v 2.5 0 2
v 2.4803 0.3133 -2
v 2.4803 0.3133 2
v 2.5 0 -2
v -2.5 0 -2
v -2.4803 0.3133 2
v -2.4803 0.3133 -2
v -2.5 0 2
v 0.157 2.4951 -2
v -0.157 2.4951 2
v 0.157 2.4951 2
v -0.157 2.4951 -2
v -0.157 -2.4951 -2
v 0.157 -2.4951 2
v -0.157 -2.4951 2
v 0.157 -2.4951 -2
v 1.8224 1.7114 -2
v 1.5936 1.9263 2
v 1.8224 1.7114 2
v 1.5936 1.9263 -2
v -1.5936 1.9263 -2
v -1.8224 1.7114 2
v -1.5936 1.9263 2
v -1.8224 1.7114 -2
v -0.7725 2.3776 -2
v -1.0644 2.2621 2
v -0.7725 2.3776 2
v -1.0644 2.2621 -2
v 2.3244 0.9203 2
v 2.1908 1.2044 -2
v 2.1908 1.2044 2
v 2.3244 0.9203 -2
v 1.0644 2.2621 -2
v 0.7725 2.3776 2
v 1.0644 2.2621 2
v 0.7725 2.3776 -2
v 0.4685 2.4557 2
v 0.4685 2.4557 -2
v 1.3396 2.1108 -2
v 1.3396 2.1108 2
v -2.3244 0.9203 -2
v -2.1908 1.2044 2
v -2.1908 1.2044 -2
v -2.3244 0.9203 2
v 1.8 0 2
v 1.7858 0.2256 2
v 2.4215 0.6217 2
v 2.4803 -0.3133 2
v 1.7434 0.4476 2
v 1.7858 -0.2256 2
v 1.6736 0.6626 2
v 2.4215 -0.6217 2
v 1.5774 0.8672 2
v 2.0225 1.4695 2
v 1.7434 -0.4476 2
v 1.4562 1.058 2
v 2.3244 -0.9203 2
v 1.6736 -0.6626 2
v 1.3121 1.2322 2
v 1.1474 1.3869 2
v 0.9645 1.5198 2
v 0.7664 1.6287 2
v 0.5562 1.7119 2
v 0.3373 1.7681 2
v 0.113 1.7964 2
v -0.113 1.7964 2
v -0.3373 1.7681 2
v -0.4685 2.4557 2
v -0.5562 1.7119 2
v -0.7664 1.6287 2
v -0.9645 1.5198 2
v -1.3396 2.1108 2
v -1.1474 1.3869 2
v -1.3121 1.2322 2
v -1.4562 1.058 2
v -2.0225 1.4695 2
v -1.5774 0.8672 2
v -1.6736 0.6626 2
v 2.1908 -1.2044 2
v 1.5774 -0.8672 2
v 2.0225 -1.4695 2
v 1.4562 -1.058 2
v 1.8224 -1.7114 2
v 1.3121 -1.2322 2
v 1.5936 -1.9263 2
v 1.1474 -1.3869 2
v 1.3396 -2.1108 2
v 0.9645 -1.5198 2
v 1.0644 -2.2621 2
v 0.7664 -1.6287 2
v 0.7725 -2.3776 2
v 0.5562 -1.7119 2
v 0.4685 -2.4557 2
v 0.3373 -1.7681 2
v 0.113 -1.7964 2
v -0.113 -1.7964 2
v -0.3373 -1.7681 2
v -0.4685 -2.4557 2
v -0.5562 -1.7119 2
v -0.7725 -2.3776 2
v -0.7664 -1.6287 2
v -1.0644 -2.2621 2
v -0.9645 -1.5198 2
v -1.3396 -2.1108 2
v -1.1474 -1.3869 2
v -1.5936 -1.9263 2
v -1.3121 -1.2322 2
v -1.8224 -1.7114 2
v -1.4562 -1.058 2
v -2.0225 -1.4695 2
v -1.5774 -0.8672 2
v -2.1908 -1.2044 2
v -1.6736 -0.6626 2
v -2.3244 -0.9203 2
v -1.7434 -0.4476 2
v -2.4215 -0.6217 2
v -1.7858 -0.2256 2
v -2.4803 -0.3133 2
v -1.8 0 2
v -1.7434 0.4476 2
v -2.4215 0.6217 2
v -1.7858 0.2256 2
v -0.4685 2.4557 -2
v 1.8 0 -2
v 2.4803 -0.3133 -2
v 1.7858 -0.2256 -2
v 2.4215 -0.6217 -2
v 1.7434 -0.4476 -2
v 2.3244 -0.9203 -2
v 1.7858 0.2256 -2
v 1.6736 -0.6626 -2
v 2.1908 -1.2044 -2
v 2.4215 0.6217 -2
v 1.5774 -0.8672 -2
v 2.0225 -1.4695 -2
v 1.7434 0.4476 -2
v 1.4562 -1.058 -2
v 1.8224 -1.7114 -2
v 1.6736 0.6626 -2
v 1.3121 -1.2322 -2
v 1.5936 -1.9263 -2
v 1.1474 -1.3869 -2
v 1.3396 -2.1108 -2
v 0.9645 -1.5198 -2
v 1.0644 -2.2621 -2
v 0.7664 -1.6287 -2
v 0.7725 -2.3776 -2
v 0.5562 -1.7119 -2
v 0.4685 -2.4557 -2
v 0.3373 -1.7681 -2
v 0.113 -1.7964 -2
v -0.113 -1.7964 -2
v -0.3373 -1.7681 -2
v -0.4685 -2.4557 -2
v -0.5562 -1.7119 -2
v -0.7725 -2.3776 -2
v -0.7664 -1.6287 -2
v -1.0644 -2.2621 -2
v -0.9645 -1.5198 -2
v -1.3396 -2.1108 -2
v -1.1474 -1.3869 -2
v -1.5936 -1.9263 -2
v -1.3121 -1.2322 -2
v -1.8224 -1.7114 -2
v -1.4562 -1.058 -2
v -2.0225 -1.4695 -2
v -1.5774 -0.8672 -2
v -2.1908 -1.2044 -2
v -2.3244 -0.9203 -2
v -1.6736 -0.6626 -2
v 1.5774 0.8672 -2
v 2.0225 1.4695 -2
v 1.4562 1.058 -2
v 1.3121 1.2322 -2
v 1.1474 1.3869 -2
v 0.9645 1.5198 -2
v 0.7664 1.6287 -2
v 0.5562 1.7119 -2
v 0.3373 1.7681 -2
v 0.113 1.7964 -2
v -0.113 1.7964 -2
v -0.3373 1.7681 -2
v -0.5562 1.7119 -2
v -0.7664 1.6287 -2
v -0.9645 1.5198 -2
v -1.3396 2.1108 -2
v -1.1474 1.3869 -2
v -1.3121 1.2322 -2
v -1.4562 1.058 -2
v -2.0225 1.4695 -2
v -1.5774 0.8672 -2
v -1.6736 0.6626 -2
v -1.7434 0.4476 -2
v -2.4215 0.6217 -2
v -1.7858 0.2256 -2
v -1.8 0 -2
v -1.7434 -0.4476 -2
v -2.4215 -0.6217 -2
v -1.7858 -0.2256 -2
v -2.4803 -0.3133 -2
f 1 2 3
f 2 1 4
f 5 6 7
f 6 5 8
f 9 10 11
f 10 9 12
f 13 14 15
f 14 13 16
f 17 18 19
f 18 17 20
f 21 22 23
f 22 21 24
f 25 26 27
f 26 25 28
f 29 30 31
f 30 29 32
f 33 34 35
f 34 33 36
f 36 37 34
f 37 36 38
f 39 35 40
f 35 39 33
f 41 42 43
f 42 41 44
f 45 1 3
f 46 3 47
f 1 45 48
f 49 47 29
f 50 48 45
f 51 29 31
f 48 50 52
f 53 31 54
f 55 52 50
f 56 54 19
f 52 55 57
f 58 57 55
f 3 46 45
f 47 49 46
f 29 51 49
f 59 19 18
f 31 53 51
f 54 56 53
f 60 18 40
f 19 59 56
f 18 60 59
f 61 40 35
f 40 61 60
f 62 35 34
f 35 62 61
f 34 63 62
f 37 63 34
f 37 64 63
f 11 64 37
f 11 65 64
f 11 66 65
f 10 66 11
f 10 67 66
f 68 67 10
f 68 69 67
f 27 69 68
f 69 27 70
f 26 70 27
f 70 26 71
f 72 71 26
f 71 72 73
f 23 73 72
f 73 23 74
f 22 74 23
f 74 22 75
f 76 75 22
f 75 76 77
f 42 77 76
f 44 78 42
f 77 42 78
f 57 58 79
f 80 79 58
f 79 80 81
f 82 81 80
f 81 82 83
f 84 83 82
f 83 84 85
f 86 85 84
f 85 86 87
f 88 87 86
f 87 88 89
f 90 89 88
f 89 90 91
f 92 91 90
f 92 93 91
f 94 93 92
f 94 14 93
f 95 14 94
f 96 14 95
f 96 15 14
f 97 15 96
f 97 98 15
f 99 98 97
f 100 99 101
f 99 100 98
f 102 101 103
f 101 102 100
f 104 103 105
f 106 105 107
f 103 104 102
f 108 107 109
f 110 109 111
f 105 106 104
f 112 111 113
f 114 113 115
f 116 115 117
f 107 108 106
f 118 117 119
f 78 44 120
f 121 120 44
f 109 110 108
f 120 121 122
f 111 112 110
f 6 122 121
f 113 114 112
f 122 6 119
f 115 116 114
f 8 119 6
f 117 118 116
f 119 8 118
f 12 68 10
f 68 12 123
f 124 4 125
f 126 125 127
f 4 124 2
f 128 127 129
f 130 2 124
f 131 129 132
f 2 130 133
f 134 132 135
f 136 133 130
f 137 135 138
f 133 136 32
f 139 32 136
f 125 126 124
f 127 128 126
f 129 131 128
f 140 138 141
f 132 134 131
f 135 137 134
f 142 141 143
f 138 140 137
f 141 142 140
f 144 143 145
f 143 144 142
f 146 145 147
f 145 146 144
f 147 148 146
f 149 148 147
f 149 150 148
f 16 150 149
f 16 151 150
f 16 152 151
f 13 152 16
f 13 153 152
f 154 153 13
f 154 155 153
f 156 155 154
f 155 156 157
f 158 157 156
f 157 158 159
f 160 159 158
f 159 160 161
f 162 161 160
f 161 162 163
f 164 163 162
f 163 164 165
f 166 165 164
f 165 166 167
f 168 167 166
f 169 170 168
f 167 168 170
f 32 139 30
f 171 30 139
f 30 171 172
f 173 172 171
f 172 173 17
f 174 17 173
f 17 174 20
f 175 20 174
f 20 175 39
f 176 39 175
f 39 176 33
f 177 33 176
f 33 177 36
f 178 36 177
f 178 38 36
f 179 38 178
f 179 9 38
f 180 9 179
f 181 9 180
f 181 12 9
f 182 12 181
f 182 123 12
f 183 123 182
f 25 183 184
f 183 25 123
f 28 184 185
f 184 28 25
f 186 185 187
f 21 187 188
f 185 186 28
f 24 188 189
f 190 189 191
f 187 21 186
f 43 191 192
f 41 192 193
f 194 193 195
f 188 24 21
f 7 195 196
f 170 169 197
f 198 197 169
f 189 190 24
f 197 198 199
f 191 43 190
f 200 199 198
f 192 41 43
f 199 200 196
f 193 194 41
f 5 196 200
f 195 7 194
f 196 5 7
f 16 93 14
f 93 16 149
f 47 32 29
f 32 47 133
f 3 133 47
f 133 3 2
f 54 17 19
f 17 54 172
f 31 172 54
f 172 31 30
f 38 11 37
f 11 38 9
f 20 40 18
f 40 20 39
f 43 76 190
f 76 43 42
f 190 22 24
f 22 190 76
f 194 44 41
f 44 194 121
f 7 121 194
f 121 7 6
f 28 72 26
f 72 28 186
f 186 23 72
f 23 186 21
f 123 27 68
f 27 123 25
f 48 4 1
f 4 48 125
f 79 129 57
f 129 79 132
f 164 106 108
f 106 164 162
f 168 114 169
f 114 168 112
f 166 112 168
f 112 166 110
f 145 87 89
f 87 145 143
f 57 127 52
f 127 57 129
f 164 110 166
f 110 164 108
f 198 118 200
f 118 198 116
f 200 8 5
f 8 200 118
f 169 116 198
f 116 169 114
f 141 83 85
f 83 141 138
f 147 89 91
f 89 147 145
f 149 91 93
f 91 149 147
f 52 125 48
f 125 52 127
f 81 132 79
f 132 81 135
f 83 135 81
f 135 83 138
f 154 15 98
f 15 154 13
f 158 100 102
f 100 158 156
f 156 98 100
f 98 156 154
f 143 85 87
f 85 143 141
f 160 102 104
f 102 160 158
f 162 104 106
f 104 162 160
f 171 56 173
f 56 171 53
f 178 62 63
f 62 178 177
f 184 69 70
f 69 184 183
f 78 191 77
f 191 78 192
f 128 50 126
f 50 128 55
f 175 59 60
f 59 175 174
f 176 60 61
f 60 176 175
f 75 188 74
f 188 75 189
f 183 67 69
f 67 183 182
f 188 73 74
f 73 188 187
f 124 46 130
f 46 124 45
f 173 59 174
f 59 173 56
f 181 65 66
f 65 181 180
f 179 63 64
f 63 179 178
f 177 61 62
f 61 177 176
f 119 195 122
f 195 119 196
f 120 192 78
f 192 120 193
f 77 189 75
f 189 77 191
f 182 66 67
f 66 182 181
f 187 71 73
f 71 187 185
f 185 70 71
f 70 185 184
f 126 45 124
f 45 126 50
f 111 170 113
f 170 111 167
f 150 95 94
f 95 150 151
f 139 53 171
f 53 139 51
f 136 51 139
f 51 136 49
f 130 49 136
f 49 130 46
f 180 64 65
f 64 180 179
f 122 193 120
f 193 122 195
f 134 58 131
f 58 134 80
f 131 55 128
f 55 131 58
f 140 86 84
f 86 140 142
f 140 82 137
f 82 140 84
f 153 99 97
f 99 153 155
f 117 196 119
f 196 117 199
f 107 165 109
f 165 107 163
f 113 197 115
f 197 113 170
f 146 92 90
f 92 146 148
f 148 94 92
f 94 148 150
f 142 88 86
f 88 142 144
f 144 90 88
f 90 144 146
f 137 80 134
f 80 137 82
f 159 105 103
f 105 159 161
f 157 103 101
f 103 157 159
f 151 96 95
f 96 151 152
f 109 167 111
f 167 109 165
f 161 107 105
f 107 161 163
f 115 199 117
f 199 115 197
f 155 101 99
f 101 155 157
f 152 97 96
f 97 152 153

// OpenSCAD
$fn = 50;


difference() {
	union() {
		translate(v = [0, 0, -2.0000000000]) {
			cylinder(h = 4, r = 2.5000000000);
		}
	}
	union() {
		translate(v = [0, 0, -100.0000000000]) {
			cylinder(h = 200, r = 1.8000000000);
		}
	}
}
